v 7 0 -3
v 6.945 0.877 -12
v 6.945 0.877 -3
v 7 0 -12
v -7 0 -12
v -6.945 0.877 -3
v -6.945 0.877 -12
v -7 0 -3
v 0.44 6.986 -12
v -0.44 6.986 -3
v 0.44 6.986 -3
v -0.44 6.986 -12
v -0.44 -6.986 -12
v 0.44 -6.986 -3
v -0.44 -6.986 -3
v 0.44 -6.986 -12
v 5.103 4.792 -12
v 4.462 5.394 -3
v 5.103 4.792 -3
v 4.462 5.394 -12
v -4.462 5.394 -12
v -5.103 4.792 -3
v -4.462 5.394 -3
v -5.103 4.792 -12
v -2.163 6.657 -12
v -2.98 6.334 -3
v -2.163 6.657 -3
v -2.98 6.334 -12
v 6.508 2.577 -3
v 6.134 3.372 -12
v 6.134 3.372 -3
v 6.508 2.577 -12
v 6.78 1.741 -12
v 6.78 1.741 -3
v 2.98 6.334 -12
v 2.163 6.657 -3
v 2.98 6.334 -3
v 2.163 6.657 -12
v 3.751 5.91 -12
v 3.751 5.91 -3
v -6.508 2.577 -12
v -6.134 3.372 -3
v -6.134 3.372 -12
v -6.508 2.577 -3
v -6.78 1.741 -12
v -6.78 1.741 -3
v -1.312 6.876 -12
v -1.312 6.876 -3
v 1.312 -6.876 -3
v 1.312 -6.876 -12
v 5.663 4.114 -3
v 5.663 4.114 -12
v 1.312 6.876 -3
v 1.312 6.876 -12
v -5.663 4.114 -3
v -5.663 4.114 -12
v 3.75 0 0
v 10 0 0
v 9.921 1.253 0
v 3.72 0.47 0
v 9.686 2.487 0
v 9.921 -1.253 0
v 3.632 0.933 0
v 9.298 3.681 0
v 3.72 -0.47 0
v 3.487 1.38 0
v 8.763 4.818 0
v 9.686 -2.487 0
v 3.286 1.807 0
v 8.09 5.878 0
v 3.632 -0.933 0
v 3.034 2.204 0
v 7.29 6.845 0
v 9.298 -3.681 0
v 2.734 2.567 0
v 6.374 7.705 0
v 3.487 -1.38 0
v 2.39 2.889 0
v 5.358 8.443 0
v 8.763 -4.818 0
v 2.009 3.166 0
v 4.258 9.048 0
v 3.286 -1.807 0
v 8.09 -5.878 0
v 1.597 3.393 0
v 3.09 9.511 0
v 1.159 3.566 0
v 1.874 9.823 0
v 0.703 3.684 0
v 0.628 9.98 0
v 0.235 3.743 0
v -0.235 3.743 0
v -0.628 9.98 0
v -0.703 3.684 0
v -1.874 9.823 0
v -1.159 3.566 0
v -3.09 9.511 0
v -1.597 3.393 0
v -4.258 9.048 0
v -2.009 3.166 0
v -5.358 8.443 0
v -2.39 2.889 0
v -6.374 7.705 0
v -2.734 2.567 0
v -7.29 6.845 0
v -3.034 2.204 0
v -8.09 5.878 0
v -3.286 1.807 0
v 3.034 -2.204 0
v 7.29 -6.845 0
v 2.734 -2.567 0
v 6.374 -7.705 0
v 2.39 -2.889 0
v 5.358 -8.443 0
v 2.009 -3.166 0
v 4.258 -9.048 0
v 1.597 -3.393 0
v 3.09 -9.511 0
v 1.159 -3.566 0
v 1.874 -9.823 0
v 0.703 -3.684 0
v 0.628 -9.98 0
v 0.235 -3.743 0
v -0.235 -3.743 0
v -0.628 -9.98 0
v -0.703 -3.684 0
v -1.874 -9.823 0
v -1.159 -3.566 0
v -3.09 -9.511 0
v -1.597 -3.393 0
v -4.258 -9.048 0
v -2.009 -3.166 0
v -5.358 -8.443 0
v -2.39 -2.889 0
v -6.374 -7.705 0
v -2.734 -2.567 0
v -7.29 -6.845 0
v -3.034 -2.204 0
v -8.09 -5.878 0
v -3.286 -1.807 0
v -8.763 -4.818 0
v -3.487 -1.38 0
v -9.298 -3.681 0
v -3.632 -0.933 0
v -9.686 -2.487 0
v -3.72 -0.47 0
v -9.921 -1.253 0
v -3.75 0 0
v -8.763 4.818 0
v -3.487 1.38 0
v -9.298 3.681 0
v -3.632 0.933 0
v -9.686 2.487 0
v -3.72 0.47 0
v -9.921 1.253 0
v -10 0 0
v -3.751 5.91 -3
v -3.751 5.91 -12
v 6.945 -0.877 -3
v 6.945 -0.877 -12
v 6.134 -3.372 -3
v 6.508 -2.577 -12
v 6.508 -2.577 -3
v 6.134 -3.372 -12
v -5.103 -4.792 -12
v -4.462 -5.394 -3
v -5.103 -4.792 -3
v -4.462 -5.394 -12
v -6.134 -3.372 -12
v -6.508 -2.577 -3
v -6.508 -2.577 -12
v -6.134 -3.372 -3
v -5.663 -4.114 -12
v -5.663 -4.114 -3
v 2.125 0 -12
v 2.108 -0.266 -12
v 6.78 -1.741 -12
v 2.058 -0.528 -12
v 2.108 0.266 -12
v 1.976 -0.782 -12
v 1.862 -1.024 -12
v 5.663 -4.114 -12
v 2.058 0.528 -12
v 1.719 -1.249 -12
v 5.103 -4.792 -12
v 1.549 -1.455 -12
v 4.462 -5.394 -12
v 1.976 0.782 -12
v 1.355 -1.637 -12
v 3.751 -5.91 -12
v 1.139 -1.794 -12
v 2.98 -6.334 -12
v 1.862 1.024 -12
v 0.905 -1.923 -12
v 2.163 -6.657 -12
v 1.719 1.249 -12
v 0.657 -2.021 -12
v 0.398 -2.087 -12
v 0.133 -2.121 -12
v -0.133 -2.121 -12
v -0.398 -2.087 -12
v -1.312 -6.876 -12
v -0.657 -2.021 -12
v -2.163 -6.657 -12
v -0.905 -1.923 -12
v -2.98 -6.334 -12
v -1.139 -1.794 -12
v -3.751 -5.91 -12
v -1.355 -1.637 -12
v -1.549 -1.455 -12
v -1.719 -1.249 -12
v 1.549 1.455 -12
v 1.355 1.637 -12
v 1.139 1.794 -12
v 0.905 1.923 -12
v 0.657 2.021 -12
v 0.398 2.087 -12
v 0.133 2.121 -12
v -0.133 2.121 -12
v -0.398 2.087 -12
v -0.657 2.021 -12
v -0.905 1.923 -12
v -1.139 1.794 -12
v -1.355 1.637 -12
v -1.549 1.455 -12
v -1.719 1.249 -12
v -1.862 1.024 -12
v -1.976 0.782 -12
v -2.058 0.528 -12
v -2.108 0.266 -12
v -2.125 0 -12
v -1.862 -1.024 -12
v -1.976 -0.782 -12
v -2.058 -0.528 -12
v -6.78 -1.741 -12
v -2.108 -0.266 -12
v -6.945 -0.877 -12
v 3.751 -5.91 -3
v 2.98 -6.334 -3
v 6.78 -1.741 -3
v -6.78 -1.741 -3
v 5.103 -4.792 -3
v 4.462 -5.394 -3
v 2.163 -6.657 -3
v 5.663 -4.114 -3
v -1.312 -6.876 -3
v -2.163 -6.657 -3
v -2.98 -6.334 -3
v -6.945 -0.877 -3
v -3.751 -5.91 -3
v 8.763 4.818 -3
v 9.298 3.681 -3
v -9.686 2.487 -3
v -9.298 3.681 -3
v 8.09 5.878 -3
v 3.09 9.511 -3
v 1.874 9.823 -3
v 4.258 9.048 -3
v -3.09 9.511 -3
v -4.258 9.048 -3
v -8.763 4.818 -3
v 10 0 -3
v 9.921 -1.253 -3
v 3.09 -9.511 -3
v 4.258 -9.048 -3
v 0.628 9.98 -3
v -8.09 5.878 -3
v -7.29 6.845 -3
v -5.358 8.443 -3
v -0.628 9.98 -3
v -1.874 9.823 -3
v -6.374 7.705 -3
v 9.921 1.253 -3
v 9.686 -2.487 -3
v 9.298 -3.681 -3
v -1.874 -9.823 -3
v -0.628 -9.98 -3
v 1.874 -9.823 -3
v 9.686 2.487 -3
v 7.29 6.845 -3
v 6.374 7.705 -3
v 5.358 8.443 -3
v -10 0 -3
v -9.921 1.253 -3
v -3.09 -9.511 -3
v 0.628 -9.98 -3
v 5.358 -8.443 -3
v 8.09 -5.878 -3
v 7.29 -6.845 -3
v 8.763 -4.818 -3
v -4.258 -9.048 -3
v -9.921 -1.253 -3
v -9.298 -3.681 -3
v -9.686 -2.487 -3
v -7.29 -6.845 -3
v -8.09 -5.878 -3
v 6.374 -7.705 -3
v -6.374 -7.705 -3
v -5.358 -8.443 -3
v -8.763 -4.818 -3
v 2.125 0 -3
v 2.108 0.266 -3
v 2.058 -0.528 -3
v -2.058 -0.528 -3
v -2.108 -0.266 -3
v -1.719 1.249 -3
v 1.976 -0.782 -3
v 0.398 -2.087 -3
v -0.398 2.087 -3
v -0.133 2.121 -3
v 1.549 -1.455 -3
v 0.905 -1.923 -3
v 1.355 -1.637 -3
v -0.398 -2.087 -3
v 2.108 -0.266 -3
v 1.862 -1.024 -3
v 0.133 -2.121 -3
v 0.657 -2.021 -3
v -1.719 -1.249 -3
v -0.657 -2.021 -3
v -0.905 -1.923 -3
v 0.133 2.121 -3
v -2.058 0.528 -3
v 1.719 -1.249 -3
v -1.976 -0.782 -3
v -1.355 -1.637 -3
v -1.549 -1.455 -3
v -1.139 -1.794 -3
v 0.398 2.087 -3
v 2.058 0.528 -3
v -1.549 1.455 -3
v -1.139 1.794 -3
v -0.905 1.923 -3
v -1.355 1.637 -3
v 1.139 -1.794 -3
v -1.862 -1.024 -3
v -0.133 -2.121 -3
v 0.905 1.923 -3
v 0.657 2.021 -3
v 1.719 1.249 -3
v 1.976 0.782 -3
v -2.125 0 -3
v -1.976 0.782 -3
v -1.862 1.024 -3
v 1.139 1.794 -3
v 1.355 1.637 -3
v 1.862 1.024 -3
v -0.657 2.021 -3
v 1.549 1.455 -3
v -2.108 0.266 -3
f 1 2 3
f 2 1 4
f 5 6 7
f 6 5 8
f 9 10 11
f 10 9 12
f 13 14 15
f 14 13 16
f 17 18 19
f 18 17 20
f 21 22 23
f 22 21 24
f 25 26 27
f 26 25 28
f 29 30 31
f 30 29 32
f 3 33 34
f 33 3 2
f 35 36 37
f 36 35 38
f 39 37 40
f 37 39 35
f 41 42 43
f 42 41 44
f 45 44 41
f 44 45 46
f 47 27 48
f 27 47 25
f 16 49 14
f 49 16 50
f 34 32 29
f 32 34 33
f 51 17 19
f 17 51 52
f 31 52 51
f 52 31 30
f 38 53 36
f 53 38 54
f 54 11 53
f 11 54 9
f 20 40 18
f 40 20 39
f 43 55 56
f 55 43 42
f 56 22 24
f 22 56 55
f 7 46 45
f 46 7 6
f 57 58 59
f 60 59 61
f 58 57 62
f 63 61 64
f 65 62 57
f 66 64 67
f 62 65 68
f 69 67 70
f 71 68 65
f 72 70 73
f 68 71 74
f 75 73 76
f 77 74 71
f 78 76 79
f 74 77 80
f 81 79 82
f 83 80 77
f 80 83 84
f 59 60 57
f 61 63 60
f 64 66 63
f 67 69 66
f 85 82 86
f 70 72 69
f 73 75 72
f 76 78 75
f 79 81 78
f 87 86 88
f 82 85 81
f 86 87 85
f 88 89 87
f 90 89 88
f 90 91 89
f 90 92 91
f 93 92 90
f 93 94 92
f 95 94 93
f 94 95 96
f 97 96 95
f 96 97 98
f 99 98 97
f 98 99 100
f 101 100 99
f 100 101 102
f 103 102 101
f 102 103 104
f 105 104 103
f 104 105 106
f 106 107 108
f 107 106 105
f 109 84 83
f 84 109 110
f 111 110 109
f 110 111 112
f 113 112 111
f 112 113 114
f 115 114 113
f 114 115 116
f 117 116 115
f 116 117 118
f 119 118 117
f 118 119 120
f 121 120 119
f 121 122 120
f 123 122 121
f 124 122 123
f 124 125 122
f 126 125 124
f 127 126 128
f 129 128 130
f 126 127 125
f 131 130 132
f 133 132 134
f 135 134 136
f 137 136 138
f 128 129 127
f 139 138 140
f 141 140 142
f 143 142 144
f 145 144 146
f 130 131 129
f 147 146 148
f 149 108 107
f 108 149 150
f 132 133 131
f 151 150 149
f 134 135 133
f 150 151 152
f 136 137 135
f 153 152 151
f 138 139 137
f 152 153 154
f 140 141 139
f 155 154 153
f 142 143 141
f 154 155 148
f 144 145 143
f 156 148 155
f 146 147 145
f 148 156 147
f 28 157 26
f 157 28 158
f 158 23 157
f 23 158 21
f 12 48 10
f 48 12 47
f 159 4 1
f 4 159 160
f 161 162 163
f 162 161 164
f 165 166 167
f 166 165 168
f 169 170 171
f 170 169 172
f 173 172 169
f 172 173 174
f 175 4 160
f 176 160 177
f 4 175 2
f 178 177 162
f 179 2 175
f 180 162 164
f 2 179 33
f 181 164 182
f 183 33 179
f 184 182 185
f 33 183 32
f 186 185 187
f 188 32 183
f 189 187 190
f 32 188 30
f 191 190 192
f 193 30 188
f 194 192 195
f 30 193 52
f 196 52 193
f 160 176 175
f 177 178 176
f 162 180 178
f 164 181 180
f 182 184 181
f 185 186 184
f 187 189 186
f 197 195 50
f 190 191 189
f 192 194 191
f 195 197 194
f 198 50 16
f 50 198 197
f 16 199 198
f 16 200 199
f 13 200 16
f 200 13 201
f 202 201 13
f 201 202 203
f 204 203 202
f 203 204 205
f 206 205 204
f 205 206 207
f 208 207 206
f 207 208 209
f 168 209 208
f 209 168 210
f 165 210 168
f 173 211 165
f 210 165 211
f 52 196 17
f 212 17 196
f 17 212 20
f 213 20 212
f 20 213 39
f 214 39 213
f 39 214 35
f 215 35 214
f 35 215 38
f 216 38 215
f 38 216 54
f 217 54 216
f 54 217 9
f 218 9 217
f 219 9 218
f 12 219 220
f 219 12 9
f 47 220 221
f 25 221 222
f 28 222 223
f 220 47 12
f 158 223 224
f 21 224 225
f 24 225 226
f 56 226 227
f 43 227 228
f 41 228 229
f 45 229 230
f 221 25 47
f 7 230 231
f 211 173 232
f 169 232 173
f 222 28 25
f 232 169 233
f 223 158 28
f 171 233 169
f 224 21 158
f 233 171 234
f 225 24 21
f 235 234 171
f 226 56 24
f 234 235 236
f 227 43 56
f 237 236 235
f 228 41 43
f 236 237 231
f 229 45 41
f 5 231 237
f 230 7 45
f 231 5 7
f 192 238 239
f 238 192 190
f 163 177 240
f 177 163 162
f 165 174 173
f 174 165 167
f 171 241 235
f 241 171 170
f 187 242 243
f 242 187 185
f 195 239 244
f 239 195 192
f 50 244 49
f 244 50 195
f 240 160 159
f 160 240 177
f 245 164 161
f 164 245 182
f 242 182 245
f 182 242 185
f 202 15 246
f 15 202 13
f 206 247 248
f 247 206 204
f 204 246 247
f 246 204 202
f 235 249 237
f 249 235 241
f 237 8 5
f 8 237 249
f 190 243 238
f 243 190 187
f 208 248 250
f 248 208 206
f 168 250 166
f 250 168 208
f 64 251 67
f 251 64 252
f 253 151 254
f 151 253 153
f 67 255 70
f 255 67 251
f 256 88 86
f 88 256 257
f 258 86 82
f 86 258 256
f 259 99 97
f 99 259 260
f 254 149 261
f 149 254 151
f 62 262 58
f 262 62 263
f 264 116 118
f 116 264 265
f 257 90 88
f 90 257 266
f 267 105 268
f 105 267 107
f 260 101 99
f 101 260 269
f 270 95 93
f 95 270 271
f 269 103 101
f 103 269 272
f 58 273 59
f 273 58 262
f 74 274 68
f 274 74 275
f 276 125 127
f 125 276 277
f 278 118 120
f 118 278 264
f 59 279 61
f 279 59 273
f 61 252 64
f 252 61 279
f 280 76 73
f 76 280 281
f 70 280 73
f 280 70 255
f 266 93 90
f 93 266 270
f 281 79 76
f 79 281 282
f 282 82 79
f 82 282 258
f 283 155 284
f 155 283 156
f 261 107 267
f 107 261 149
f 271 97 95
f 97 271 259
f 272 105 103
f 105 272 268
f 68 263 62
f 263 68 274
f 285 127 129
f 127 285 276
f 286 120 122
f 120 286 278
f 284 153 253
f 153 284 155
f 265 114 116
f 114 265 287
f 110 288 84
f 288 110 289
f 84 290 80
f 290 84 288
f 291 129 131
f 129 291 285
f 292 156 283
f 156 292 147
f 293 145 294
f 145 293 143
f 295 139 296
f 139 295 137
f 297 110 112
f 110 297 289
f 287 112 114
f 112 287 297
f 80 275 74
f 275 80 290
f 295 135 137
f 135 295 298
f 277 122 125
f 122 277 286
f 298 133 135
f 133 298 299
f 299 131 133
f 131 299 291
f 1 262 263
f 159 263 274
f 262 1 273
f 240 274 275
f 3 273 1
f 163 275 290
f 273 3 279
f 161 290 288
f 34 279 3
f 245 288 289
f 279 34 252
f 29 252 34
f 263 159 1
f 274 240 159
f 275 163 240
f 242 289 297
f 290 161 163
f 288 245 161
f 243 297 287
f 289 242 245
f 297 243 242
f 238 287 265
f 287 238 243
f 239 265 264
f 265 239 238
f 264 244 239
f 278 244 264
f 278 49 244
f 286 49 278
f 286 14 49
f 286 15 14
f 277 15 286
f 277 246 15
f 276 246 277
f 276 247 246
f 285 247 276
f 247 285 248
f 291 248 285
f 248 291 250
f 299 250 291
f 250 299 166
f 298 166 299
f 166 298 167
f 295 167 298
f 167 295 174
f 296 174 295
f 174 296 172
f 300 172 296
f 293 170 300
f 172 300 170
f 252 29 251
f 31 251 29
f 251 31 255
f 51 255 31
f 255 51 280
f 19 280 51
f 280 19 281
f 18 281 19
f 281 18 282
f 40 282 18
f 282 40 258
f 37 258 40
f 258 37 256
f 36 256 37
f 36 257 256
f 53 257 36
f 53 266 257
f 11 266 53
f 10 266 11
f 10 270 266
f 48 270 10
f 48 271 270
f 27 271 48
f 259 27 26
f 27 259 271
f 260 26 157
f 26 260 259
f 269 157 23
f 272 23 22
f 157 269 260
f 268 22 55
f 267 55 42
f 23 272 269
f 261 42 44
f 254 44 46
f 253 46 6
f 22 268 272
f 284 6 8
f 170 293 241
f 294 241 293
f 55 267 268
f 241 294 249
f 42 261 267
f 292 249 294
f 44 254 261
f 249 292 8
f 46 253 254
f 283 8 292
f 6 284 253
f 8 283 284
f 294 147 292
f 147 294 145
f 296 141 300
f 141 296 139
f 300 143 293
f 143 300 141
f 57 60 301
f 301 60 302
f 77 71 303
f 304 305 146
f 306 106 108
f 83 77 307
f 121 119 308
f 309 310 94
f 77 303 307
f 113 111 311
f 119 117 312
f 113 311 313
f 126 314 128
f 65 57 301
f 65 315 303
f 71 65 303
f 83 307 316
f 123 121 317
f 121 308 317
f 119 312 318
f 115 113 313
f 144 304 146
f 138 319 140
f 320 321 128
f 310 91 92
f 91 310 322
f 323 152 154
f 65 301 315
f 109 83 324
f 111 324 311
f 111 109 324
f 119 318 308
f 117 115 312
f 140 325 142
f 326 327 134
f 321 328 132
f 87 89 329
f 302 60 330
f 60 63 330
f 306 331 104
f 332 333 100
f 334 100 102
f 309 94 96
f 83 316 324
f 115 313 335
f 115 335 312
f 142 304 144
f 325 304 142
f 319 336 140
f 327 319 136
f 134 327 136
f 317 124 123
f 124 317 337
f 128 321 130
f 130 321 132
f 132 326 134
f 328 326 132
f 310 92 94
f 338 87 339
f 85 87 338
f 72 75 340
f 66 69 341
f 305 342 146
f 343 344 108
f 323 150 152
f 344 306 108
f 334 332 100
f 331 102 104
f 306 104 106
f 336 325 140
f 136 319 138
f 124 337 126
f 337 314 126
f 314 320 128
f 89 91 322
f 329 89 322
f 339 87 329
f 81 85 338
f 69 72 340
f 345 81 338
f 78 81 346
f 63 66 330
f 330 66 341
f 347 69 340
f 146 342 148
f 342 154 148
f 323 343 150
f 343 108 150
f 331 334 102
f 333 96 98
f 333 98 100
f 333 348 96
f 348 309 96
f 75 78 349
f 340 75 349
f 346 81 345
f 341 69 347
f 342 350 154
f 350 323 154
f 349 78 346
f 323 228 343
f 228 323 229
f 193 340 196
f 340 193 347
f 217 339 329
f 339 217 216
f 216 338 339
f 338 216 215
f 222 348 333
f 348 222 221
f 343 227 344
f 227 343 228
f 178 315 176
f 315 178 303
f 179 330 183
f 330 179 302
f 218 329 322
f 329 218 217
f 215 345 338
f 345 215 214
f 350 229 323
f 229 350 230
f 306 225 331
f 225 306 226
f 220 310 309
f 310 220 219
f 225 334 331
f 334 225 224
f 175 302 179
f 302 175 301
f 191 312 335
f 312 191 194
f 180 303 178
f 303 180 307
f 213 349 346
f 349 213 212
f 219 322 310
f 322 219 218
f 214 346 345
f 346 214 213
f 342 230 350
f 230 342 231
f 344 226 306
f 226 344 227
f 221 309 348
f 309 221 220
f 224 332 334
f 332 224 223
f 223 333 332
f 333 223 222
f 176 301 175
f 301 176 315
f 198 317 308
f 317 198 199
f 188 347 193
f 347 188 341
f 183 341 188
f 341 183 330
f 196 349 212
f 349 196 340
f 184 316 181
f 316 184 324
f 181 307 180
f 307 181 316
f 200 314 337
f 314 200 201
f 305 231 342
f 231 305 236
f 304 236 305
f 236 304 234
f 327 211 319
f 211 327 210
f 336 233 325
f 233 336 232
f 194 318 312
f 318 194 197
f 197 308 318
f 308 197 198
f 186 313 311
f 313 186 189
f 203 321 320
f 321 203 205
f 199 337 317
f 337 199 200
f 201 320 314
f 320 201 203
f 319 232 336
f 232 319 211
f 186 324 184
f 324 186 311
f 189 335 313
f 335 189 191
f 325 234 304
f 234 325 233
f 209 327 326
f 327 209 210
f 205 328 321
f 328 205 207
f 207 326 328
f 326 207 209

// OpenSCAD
$fn = 50;


difference() {
	union() {
		translate(v = [0, 0, -12.0000000000]) {
			cylinder(h = 12, r = 7.0000000000);
		}
		translate(v = [0, 0, -3.0000000000]) {
			cylinder(h = 3, r = 10.0000000000);
		}
	}
	union() {
		translate(v = [0, 0, 0]) {
			rotate(a = [0, 0, 0]) {
				difference() {
					union() {
						#translate(v = [0, 0, -12.0000000000]) {
							cylinder(h = 12, r = 2.0000000000);
						}
						#translate(v = [0, 0, -3]) {
							cylinder(h = 3, r = 7.0000000000, r1 = 2.1250000000, r2 = 3.7500000000);
						}
						#translate(v = [0, 0, -12.0000000000]) {
							cylinder(h = 12, r = 2.1250000000);
						}
						#translate(v = [0, 0, -12.0000000000]) {
							cylinder(h = 12, r = 2.0000000000);
						}
					}
					union();
				}
			}
		}
	}
}
